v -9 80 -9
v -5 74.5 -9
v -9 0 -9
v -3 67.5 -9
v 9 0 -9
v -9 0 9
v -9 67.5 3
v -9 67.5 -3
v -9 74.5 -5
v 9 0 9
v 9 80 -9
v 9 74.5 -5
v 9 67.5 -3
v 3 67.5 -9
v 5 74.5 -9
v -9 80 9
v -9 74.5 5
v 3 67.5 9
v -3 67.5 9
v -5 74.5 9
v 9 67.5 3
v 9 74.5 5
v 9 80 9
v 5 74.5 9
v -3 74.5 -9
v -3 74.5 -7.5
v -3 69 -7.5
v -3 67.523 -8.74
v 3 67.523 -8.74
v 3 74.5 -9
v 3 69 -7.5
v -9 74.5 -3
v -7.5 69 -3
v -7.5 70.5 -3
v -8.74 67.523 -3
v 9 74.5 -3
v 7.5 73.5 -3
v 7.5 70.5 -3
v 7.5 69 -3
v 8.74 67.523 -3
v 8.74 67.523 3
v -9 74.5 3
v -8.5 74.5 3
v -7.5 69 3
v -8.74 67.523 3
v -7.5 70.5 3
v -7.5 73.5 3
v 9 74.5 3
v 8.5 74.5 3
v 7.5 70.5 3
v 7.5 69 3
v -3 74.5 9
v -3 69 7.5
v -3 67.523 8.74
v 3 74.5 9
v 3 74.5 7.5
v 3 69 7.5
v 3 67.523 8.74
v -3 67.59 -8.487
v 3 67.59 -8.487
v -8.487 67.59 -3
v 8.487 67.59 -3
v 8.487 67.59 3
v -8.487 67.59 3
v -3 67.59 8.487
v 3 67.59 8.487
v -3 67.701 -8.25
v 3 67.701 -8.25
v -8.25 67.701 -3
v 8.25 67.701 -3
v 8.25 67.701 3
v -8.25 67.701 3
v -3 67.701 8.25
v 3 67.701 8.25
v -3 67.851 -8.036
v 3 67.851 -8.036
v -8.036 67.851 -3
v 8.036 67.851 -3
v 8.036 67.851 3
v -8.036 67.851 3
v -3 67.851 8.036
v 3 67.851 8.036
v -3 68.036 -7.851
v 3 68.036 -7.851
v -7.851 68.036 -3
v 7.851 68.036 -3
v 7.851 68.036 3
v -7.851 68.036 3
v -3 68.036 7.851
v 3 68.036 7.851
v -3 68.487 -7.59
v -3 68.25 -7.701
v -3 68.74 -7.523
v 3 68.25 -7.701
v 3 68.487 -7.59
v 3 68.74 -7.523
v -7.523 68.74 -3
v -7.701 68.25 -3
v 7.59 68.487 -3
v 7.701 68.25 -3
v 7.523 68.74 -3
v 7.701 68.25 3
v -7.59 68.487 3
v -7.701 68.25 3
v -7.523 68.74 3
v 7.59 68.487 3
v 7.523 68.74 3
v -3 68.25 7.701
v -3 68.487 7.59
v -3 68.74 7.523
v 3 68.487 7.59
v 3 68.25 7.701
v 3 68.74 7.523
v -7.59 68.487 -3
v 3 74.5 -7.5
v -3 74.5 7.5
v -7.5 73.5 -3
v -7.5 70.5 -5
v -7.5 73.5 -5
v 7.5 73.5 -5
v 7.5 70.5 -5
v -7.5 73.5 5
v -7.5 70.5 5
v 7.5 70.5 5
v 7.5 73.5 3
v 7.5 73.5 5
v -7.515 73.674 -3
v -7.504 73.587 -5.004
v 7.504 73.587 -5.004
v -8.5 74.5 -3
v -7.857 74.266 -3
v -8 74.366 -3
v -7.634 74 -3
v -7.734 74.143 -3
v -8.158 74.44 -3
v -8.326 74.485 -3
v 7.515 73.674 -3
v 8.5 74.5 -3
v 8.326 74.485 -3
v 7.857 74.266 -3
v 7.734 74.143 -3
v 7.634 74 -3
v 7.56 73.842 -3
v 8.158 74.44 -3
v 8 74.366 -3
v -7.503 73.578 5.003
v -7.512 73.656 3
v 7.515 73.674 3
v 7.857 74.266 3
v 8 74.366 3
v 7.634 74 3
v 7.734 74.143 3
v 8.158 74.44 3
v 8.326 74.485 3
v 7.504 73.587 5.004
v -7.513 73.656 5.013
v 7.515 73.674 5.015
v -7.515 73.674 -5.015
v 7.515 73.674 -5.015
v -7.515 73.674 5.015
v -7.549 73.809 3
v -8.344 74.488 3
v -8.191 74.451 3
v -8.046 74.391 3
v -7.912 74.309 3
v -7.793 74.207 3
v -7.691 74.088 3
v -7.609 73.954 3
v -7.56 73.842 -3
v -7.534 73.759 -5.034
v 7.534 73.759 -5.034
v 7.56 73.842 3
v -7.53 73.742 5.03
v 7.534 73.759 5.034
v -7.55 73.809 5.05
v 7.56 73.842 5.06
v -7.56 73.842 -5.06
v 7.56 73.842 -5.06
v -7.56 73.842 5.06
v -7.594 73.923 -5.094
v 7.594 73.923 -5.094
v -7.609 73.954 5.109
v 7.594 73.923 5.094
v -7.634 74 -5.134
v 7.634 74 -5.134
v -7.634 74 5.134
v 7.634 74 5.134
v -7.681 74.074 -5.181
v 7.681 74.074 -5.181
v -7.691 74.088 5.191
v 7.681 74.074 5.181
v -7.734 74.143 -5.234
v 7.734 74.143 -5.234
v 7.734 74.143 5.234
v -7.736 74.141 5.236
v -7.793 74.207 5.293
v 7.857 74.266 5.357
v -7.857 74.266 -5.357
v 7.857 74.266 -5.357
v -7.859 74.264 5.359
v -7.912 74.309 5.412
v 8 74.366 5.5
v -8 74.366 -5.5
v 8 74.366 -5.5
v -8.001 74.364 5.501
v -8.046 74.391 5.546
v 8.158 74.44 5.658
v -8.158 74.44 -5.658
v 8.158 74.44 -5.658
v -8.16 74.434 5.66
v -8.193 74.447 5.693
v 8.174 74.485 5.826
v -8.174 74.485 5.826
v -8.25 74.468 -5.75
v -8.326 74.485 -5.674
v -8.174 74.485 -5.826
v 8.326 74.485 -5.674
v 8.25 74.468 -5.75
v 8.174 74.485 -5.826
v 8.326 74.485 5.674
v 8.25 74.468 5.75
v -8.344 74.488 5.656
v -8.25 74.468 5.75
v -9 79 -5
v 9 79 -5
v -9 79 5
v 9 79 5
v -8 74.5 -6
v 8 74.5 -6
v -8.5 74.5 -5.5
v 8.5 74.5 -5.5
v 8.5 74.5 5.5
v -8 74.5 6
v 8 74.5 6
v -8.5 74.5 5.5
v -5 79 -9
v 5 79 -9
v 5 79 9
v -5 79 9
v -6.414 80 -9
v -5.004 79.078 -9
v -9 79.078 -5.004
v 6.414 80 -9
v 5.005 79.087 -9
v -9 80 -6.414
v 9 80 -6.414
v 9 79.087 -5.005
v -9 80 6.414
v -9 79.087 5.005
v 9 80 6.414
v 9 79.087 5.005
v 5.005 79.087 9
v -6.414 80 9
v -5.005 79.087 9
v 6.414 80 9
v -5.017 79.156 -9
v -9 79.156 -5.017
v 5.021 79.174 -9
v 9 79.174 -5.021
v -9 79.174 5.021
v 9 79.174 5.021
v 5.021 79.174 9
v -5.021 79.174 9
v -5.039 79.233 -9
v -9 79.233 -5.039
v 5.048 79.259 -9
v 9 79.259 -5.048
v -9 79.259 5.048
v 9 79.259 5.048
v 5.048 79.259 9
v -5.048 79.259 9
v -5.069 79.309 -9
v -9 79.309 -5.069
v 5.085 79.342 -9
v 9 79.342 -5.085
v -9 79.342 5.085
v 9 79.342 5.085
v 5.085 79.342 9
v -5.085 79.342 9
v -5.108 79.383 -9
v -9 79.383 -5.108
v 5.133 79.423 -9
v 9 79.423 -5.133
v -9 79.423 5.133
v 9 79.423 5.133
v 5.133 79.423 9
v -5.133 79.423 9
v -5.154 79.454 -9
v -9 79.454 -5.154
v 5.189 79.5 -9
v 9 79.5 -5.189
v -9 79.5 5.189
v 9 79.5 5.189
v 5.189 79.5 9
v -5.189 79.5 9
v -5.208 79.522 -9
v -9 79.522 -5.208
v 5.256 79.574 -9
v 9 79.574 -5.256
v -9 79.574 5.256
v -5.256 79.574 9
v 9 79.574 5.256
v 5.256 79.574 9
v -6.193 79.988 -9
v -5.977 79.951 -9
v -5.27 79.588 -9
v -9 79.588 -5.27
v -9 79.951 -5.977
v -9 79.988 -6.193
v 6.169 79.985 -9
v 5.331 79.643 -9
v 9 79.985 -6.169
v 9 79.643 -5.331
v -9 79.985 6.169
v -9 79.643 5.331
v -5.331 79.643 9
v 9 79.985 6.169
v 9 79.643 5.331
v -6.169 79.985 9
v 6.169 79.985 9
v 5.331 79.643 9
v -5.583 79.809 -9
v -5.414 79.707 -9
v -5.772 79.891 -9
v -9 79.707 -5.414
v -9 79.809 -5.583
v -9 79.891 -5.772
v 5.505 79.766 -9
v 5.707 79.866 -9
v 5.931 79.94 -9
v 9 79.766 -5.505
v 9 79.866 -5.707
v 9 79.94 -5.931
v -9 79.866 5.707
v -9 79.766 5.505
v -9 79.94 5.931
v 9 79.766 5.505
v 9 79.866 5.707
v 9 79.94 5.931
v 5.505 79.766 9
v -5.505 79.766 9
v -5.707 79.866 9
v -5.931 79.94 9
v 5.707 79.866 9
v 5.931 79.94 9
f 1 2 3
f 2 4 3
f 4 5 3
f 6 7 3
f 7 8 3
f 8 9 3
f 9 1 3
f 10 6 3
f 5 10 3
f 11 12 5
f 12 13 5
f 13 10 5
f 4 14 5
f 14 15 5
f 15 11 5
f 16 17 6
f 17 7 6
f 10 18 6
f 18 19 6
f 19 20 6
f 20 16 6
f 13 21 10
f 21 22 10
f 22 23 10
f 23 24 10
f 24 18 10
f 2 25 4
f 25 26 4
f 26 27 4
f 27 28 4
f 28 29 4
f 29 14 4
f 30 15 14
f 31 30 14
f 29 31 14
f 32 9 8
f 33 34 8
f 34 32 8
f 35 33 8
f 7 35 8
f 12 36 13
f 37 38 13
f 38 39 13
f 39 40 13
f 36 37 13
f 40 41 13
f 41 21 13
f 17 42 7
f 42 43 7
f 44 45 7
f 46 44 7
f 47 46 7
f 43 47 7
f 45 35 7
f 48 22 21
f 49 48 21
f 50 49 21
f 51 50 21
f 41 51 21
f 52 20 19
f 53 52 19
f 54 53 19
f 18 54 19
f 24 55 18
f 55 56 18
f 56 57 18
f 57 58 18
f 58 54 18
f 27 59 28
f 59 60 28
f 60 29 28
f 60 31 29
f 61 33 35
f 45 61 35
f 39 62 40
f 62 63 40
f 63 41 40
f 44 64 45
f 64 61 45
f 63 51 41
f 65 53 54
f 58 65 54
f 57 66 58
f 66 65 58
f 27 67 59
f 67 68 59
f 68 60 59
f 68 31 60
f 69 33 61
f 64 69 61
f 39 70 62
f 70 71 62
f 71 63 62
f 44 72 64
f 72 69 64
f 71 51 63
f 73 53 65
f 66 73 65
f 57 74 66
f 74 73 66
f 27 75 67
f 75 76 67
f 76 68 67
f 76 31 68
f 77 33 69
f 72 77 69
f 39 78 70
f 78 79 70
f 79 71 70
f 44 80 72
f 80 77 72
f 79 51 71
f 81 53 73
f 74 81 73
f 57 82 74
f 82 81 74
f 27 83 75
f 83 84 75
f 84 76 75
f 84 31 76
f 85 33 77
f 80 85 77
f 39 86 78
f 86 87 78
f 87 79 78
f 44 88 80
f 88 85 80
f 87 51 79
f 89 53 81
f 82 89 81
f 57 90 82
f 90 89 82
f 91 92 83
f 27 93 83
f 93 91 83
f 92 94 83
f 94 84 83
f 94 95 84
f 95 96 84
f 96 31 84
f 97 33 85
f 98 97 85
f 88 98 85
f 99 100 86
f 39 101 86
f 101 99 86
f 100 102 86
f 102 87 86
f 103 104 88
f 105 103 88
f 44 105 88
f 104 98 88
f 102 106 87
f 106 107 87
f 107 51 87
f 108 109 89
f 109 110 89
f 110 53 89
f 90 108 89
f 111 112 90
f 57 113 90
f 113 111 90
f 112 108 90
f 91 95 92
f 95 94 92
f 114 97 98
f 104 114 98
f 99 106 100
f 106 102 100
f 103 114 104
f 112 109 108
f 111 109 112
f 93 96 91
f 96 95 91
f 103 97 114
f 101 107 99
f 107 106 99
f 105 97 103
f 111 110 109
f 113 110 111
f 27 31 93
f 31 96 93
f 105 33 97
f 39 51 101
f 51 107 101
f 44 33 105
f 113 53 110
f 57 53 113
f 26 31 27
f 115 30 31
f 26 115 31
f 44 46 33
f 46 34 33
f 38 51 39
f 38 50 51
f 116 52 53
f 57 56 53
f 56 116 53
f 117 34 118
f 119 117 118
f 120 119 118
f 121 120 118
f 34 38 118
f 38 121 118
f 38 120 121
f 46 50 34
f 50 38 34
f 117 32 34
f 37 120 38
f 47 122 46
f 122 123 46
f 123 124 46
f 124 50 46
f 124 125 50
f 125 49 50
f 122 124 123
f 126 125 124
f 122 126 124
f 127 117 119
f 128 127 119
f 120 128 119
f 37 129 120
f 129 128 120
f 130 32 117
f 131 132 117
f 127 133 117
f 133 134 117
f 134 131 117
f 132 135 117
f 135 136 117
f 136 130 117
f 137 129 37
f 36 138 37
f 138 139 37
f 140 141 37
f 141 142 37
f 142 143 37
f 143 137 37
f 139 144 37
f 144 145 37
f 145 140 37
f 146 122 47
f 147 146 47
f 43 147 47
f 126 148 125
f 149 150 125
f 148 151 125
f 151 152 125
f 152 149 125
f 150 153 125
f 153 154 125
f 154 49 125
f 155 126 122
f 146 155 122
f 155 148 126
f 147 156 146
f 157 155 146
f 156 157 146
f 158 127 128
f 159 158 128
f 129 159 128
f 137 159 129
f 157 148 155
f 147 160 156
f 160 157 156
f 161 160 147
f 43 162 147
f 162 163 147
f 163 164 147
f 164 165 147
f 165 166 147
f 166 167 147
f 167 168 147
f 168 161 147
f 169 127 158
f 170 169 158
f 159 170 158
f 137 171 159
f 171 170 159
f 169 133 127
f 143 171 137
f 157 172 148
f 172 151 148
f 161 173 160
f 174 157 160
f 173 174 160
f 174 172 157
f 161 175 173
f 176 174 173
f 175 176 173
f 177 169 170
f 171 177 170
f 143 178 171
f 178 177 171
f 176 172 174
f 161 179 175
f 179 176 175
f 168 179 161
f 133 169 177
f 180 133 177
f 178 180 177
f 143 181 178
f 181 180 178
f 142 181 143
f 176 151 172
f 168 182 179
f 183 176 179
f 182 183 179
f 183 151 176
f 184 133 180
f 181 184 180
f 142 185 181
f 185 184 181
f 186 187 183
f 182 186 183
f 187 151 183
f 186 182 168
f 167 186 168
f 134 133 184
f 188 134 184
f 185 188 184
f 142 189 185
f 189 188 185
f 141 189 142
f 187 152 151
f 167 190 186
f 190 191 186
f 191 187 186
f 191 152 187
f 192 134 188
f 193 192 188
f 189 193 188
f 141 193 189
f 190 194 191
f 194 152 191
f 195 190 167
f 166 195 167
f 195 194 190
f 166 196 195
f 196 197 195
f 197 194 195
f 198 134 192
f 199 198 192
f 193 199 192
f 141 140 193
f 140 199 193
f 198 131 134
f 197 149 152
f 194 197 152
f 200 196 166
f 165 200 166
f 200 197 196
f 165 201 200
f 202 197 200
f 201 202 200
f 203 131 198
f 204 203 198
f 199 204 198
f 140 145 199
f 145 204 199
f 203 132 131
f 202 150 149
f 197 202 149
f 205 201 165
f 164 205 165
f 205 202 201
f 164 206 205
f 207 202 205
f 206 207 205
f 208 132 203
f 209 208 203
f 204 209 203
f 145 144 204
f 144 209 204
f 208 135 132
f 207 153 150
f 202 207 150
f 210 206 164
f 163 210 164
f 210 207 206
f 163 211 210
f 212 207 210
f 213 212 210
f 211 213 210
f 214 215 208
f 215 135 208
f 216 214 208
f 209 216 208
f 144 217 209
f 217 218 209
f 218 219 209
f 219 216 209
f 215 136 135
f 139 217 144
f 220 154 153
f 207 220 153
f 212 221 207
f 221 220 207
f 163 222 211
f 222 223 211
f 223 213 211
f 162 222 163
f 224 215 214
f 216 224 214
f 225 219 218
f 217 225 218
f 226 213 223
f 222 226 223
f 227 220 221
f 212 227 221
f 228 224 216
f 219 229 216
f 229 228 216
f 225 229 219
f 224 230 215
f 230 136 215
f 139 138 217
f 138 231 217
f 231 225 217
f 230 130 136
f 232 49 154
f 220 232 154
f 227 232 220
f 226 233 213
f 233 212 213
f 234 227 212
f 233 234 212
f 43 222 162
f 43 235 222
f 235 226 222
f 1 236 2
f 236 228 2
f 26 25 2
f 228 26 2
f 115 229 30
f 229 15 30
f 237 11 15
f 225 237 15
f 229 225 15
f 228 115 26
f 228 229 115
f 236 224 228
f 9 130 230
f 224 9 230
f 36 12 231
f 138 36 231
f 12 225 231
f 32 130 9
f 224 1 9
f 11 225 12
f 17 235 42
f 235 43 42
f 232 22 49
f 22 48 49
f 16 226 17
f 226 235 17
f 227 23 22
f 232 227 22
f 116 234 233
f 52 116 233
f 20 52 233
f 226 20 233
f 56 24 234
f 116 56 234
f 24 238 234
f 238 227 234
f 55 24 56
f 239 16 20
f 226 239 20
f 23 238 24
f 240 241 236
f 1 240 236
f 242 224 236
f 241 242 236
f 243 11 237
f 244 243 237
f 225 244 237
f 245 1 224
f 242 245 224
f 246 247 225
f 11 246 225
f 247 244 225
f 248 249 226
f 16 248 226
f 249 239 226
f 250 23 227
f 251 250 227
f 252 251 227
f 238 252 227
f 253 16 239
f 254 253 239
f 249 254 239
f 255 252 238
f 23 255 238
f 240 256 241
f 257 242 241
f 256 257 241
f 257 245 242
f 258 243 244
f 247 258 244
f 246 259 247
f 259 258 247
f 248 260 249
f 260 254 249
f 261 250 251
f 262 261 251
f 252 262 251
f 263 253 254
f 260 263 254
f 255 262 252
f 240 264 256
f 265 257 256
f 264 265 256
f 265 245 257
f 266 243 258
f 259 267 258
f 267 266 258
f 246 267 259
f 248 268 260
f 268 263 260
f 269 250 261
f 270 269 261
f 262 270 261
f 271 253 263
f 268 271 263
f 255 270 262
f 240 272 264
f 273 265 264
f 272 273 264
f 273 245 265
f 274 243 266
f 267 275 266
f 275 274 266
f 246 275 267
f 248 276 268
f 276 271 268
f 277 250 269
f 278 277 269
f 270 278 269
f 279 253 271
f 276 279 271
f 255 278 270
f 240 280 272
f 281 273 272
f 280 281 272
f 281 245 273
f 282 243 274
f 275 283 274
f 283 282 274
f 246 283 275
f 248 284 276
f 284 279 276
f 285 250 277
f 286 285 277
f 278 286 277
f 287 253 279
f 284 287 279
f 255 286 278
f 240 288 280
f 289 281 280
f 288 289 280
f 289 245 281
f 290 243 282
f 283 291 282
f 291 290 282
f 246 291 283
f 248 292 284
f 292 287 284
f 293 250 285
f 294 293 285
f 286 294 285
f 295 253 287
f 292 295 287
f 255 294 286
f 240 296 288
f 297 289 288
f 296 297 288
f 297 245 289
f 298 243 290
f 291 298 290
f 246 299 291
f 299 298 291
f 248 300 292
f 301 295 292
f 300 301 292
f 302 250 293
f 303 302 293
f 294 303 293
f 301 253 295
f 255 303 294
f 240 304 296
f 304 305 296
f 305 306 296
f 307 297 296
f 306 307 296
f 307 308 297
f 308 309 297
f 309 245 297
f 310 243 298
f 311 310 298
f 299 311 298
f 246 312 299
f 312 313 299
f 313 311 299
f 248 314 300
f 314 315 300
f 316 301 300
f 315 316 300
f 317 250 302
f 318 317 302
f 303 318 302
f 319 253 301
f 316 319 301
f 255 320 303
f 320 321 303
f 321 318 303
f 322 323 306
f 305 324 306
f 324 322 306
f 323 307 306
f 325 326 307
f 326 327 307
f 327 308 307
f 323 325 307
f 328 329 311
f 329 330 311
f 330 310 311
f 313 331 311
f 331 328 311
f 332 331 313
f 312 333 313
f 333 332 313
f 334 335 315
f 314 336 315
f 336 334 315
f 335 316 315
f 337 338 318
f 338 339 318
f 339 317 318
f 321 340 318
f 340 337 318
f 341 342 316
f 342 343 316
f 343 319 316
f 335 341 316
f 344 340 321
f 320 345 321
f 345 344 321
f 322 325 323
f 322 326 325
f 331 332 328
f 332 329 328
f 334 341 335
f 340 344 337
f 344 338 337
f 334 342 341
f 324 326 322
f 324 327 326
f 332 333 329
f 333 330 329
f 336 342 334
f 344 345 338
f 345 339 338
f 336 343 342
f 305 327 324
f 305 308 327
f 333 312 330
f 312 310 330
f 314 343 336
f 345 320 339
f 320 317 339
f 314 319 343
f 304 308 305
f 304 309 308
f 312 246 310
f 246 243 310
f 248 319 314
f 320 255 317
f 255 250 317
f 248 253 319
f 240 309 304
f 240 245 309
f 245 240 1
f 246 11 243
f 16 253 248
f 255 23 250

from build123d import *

# Parameters (mm, degrees)
SKETCH1_W           = 18
SKETCH1_H           = 18
BOSS_EXTRUDE1_DEPTH = 80
CUT_EXTRUDE1_DEPTH  = 5.5
SKETCH3_W           = 15
SKETCH3_H           = 10
CUT_EXTRUDE2_DEPTH  = 4
FILLET1_R           = 1
SKETCH4_W           = 6
SKETCH4_H           = 1.5
SKETCH4_W_2         = 1.5
SKETCH4_H_2         = 6
CUT_EXTRUDE3_DEPTH  = 7
FILLET2_R           = 1.5


# Some blends are built 0.0001 mm under size
with BuildPart() as part:
    # Sketch1 → Boss-Extrude1 (new body)
    with BuildSketch(Plane(origin=(0, 0, 0), x_dir=(1, 0, 0), z_dir=(0, 1, 0))):
        Rectangle(SKETCH1_W, SKETCH1_H)
    extrude(amount=BOSS_EXTRUDE1_DEPTH)

    # Sketch2 → Cut-Extrude1 (cut)
    with BuildSketch(Plane(origin=(0, 80, 0), x_dir=(1, 0, 0), z_dir=(0, 1, 0))):
        Polygon((-5, 9), (5, 9), (9, 5), (9, -5), (5, -9), (-5, -9), (-9, -5), (-9, 5), align=None)
    extrude(amount=-CUT_EXTRUDE1_DEPTH, mode=Mode.SUBTRACT)

    # Sketch3 → Cut-Extrude2 (cut)
    with BuildSketch(Plane(origin=(0, 74.5, 0), x_dir=(1, 0, 0), z_dir=(0, 1, 0))):
        Rectangle(SKETCH3_W, SKETCH3_H)
    extrude(amount=-CUT_EXTRUDE2_DEPTH, mode=Mode.SUBTRACT)

    # Fillet1
    # the kernel refuses this fillet: 1 mm, written as the material it takes off along each edge
    with BuildSketch(Plane(origin=(-10.767766953, 80, -3.232233047), x_dir=(0, -1, 0), z_dir=(0.7071067811865476, 0, -0.7071067811865476))) as fillet1_piece_1_section:
        with BuildLine():
            CenterArc((FILLET1_R, FILLET1_R), FILLET1_R, 180, 90)
            Line((0, FILLET1_R), (-FILLET1_R * 0.02, FILLET1_R))
            Line((-FILLET1_R * 0.02, FILLET1_R), (-FILLET1_R * 0.02, -FILLET1_R * 0.02))
            Line((-FILLET1_R * 0.02, -FILLET1_R * 0.02), (FILLET1_R, -FILLET1_R * 0.02))
            Line((FILLET1_R, -FILLET1_R * 0.02), (FILLET1_R, 0))
        make_face()
    fillet1_piece_1 = extrude(amount=10.656854249, mode=Mode.PRIVATE)
    fillet1_piece_1 = split(fillet1_piece_1, bisect_by=Plane(origin=(-9, 79.763052859, -7.147455413), z_dir=(1, 0, 0)), keep=Keep.TOP, mode=Mode.PRIVATE)
    fillet1_piece_1 = split(fillet1_piece_1, bisect_by=Plane(origin=(-7.147455413, 79.763052859, -9), z_dir=(0, 0, 1)), keep=Keep.TOP, mode=Mode.PRIVATE)
    add(fillet1_piece_1, mode=Mode.SUBTRACT)
    with BuildSketch(Plane(origin=(-3.232233047, 80, 10.767766953), x_dir=(0, -1, 0), z_dir=(-0.7071067811865477, 0, -0.7071067811865475))) as fillet1_piece_2_section:
        with BuildLine():
            CenterArc((FILLET1_R, FILLET1_R), FILLET1_R, 180, 90)
            Line((0, FILLET1_R), (-FILLET1_R * 0.02, FILLET1_R))
            Line((-FILLET1_R * 0.02, FILLET1_R), (-FILLET1_R * 0.02, -FILLET1_R * 0.02))
            Line((-FILLET1_R * 0.02, -FILLET1_R * 0.02), (FILLET1_R, -FILLET1_R * 0.02))
            Line((FILLET1_R, -FILLET1_R * 0.02), (FILLET1_R, 0))
        make_face()
    fillet1_piece_2 = extrude(amount=10.656854249, mode=Mode.PRIVATE)
    fillet1_piece_2 = split(fillet1_piece_2, bisect_by=Plane(origin=(-7.147455413, 79.763052859, 9), z_dir=(0, 0, -1)), keep=Keep.TOP, mode=Mode.PRIVATE)
    fillet1_piece_2 = split(fillet1_piece_2, bisect_by=Plane(origin=(-9, 79.763052859, 7.147455413), z_dir=(1, 0, 0)), keep=Keep.TOP, mode=Mode.PRIVATE)
    add(fillet1_piece_2, mode=Mode.SUBTRACT)
    with BuildSketch(Plane(origin=(10.767766953, 80, 3.232233047), x_dir=(0.7071067811865475, 0, 0.7071067811865477), z_dir=(-0.7071067811865477, 0, 0.7071067811865475))) as fillet1_piece_3_section:
        with BuildLine():
            CenterArc((FILLET1_R, -FILLET1_R), FILLET1_R, 90, 90)
            Line((0, -FILLET1_R), (-FILLET1_R * 0.02, -FILLET1_R))
            Line((-FILLET1_R * 0.02, -FILLET1_R), (-FILLET1_R * 0.02, FILLET1_R * 0.02))
            Line((-FILLET1_R * 0.02, FILLET1_R * 0.02), (FILLET1_R, FILLET1_R * 0.02))
            Line((FILLET1_R, FILLET1_R * 0.02), (FILLET1_R, 0))
        make_face()
    fillet1_piece_3 = extrude(amount=10.656854249, mode=Mode.PRIVATE)
    fillet1_piece_3 = split(fillet1_piece_3, bisect_by=Plane(origin=(7.147455413, 79.763052859, 9), z_dir=(0, 0, -1)), keep=Keep.TOP, mode=Mode.PRIVATE)
    fillet1_piece_3 = split(fillet1_piece_3, bisect_by=Plane(origin=(9, 79.763052859, 7.147455413), z_dir=(-1, 0, 0)), keep=Keep.TOP, mode=Mode.PRIVATE)
    add(fillet1_piece_3, mode=Mode.SUBTRACT)
    with BuildSketch(Plane(origin=(3.232233047, 80, -10.767766953), x_dir=(0.7071067811865476, 0, -0.7071067811865476), z_dir=(0.7071067811865476, 0, 0.7071067811865476))) as fillet1_piece_4_section:
        with BuildLine():
            CenterArc((FILLET1_R, -FILLET1_R), FILLET1_R, 90, 90)
            Line((0, -FILLET1_R), (-FILLET1_R * 0.02, -FILLET1_R))
            Line((-FILLET1_R * 0.02, -FILLET1_R), (-FILLET1_R * 0.02, FILLET1_R * 0.02))
            Line((-FILLET1_R * 0.02, FILLET1_R * 0.02), (FILLET1_R, FILLET1_R * 0.02))
            Line((FILLET1_R, FILLET1_R * 0.02), (FILLET1_R, 0))
        make_face()
    fillet1_piece_4 = extrude(amount=10.656854249, mode=Mode.PRIVATE)
    fillet1_piece_4 = split(fillet1_piece_4, bisect_by=Plane(origin=(9, 79.763052859, -7.147455413), z_dir=(-1, 0, 0)), keep=Keep.TOP, mode=Mode.PRIVATE)
    fillet1_piece_4 = split(fillet1_piece_4, bisect_by=Plane(origin=(7.147455413, 79.763052859, -9), z_dir=(0, 0, 1)), keep=Keep.TOP, mode=Mode.PRIVATE)
    add(fillet1_piece_4, mode=Mode.SUBTRACT)
    with BuildSketch(Plane(origin=(7.5, 74.5, -5), x_dir=(1, 0, 0), z_dir=(0, 0, 1)), Plane(origin=(-7.5, 74.5, 5), x_dir=(-1, 0, 0), z_dir=(0, 0, -1))) as fillet1_piece_5:
        with BuildLine():
            CenterArc((FILLET1_R, -FILLET1_R), FILLET1_R, 90, 90)
            Line((0, -FILLET1_R), (-FILLET1_R * 0.02, -FILLET1_R))
            Line((-FILLET1_R * 0.02, -FILLET1_R), (-FILLET1_R * 0.02, FILLET1_R * 0.02))
            Line((-FILLET1_R * 0.02, FILLET1_R * 0.02), (FILLET1_R, FILLET1_R * 0.02))
            Line((FILLET1_R, FILLET1_R * 0.02), (FILLET1_R, 0))
        make_face()
    extrude(amount=10, mode=Mode.SUBTRACT)
    with BuildSketch(Plane(origin=(-7.5, 74.5, -5), x_dir=(0, 0, -1), z_dir=(1, 0, 0)), Plane(origin=(7.5, 74.5, 5), x_dir=(0, 0, 1), z_dir=(-1, 0, 0))) as fillet1_piece_6:
        with BuildLine():
            CenterArc((FILLET1_R, -FILLET1_R), FILLET1_R, 90, 90)
            Line((0, -FILLET1_R), (-FILLET1_R * 0.02, -FILLET1_R))
            Line((-FILLET1_R * 0.02, -FILLET1_R), (-FILLET1_R * 0.02, FILLET1_R * 0.02))
            Line((-FILLET1_R * 0.02, FILLET1_R * 0.02), (FILLET1_R, FILLET1_R * 0.02))
            Line((FILLET1_R, FILLET1_R * 0.02), (FILLET1_R, 0))
        make_face()
    extrude(amount=15, mode=Mode.SUBTRACT)
    with BuildSketch(Plane(origin=(-7.5, 74.5, -5), x_dir=(0, 0, -1), z_dir=(1, 0, 0))) as fillet1_piece_7a_section:
        with BuildLine():
            CenterArc((FILLET1_R, -FILLET1_R), FILLET1_R, 90, 90)
            Line((0, -FILLET1_R), (-FILLET1_R * 0.02, -FILLET1_R))
            Line((-FILLET1_R * 0.02, -FILLET1_R), (-FILLET1_R * 0.02, FILLET1_R * 0.02))
            Line((-FILLET1_R * 0.02, FILLET1_R * 0.02), (FILLET1_R, FILLET1_R * 0.02))
            Line((FILLET1_R, FILLET1_R * 0.02), (FILLET1_R, 0))
        make_face()
    fillet1_piece_7a = extrude(amount=17.5, mode=Mode.PRIVATE)
    fillet1_piece_7a = split(fillet1_piece_7a, bisect_by=Plane(origin=(8.48257281, 74.252046622, -5.51742719), z_dir=(-0.7071067811865476, 0, 0.7071067811865476)), keep=Keep.TOP, mode=Mode.PRIVATE)
    fillet1_piece_7a = split(fillet1_piece_7a, bisect_by=Plane(origin=(7.5, 74.252046622, -5.189902921), z_dir=(1, 0, 0)), keep=Keep.TOP, mode=Mode.PRIVATE)
    with BuildSketch(Plane(origin=(7.5, 74.5, -7.5), x_dir=(1, 0, 0), z_dir=(0, 0, 1))) as fillet1_piece_7b_section:
        with BuildLine():
            CenterArc((FILLET1_R, -FILLET1_R), FILLET1_R, 90, 90)
            Line((0, -FILLET1_R), (-FILLET1_R * 0.02, -FILLET1_R))
            Line((-FILLET1_R * 0.02, -FILLET1_R), (-FILLET1_R * 0.02, FILLET1_R * 0.02))
            Line((-FILLET1_R * 0.02, FILLET1_R * 0.02), (FILLET1_R, FILLET1_R * 0.02))
            Line((FILLET1_R, FILLET1_R * 0.02), (FILLET1_R, 0))
        make_face()
    fillet1_piece_7b = extrude(amount=12.5, mode=Mode.PRIVATE)
    fillet1_piece_7b = split(fillet1_piece_7b, bisect_by=Plane(origin=(8.01742719, 74.252046622, -5.98257281), z_dir=(-0.7071067811865476, 0, 0.7071067811865476)), keep=Keep.TOP, mode=Mode.PRIVATE)
    fillet1_piece_7b = split(fillet1_piece_7b, bisect_by=Plane(origin=(7.689902921, 74.252046622, -5), z_dir=(0, 0, -1)), keep=Keep.TOP, mode=Mode.PRIVATE)
    fillet1_piece_7 = fillet1_piece_7a & fillet1_piece_7b
    add(fillet1_piece_7, mode=Mode.SUBTRACT)
    with BuildSketch(Plane(origin=(7.5, 74.5, -5), x_dir=(1, 0, 0), z_dir=(0, 0, 1))) as fillet1_piece_8a_section:
        with BuildLine():
            CenterArc((FILLET1_R, -FILLET1_R), FILLET1_R, 90, 90)
            Line((0, -FILLET1_R), (-FILLET1_R * 0.02, -FILLET1_R))
            Line((-FILLET1_R * 0.02, -FILLET1_R), (-FILLET1_R * 0.02, FILLET1_R * 0.02))
            Line((-FILLET1_R * 0.02, FILLET1_R * 0.02), (FILLET1_R, FILLET1_R * 0.02))
            Line((FILLET1_R, FILLET1_R * 0.02), (FILLET1_R, 0))
        make_face()
    fillet1_piece_8a = extrude(amount=12.5, mode=Mode.PRIVATE)
    fillet1_piece_8a = split(fillet1_piece_8a, bisect_by=Plane(origin=(8.01742719, 74.252046622, 5.98257281), z_dir=(-0.7071067811865475, 0, -0.7071067811865477)), keep=Keep.TOP, mode=Mode.PRIVATE)
    fillet1_piece_8a = split(fillet1_piece_8a, bisect_by=Plane(origin=(7.689902921, 74.252046622, 5), z_dir=(0, 0, 1)), keep=Keep.TOP, mode=Mode.PRIVATE)
    with BuildSketch(Plane(origin=(10, 74.5, 5), x_dir=(0, 0, 1), z_dir=(-1, 0, 0))) as fillet1_piece_8b_section:
        with BuildLine():
            CenterArc((FILLET1_R, -FILLET1_R), FILLET1_R, 90, 90)
            Line((0, -FILLET1_R), (-FILLET1_R * 0.02, -FILLET1_R))
            Line((-FILLET1_R * 0.02, -FILLET1_R), (-FILLET1_R * 0.02, FILLET1_R * 0.02))
            Line((-FILLET1_R * 0.02, FILLET1_R * 0.02), (FILLET1_R, FILLET1_R * 0.02))
            Line((FILLET1_R, FILLET1_R * 0.02), (FILLET1_R, 0))
        make_face()
    fillet1_piece_8b = extrude(amount=17.5, mode=Mode.PRIVATE)
    fillet1_piece_8b = split(fillet1_piece_8b, bisect_by=Plane(origin=(8.48257281, 74.252046622, 5.51742719), z_dir=(-0.7071067811865475, 0, -0.7071067811865477)), keep=Keep.TOP, mode=Mode.PRIVATE)
    fillet1_piece_8b = split(fillet1_piece_8b, bisect_by=Plane(origin=(7.5, 74.252046622, 5.189902921), z_dir=(1, 0, 0)), keep=Keep.TOP, mode=Mode.PRIVATE)
    fillet1_piece_8 = fillet1_piece_8a & fillet1_piece_8b
    add(fillet1_piece_8, mode=Mode.SUBTRACT)
    with BuildSketch(Plane(origin=(-10, 74.5, -5), x_dir=(0, 0, -1), z_dir=(1, 0, 0))) as fillet1_piece_9a_section:
        with BuildLine():
            CenterArc((FILLET1_R, -FILLET1_R), FILLET1_R, 90, 90)
            Line((0, -FILLET1_R), (-FILLET1_R * 0.02, -FILLET1_R))
            Line((-FILLET1_R * 0.02, -FILLET1_R), (-FILLET1_R * 0.02, FILLET1_R * 0.02))
            Line((-FILLET1_R * 0.02, FILLET1_R * 0.02), (FILLET1_R, FILLET1_R * 0.02))
            Line((FILLET1_R, FILLET1_R * 0.02), (FILLET1_R, 0))
        make_face()
    fillet1_piece_9a = extrude(amount=17.5, mode=Mode.PRIVATE)
    fillet1_piece_9a = split(fillet1_piece_9a, bisect_by=Plane(origin=(-8.48257281, 74.252046622, -5.51742719), z_dir=(0.7071067811865476, 0, 0.7071067811865476)), keep=Keep.TOP, mode=Mode.PRIVATE)
    fillet1_piece_9a = split(fillet1_piece_9a, bisect_by=Plane(origin=(-7.5, 74.252046622, -5.189902921), z_dir=(-1, 0, 0)), keep=Keep.TOP, mode=Mode.PRIVATE)
    with BuildSketch(Plane(origin=(-7.5, 74.5, 5), x_dir=(-1, 0, 0), z_dir=(0, 0, -1))) as fillet1_piece_9b_section:
        with BuildLine():
            CenterArc((FILLET1_R, -FILLET1_R), FILLET1_R, 90, 90)
            Line((0, -FILLET1_R), (-FILLET1_R * 0.02, -FILLET1_R))
            Line((-FILLET1_R * 0.02, -FILLET1_R), (-FILLET1_R * 0.02, FILLET1_R * 0.02))
            Line((-FILLET1_R * 0.02, FILLET1_R * 0.02), (FILLET1_R, FILLET1_R * 0.02))
            Line((FILLET1_R, FILLET1_R * 0.02), (FILLET1_R, 0))
        make_face()
    fillet1_piece_9b = extrude(amount=12.5, mode=Mode.PRIVATE)
    fillet1_piece_9b = split(fillet1_piece_9b, bisect_by=Plane(origin=(-8.01742719, 74.252046622, -5.98257281), z_dir=(0.7071067811865476, 0, 0.7071067811865476)), keep=Keep.TOP, mode=Mode.PRIVATE)
    fillet1_piece_9b = split(fillet1_piece_9b, bisect_by=Plane(origin=(-7.689902921, 74.252046622, -5), z_dir=(0, 0, -1)), keep=Keep.TOP, mode=Mode.PRIVATE)
    fillet1_piece_9 = fillet1_piece_9a & fillet1_piece_9b
    add(fillet1_piece_9, mode=Mode.SUBTRACT)
    with BuildSketch(Plane(origin=(7.5, 74.5, 5), x_dir=(0, 0, 1), z_dir=(-1, 0, 0))) as fillet1_piece_10a_section:
        with BuildLine():
            CenterArc((FILLET1_R, -FILLET1_R), FILLET1_R, 90, 90)
            Line((0, -FILLET1_R), (-FILLET1_R * 0.02, -FILLET1_R))
            Line((-FILLET1_R * 0.02, -FILLET1_R), (-FILLET1_R * 0.02, FILLET1_R * 0.02))
            Line((-FILLET1_R * 0.02, FILLET1_R * 0.02), (FILLET1_R, FILLET1_R * 0.02))
            Line((FILLET1_R, FILLET1_R * 0.02), (FILLET1_R, 0))
        make_face()
    fillet1_piece_10a = extrude(amount=17.5, mode=Mode.PRIVATE)
    fillet1_piece_10a = split(fillet1_piece_10a, bisect_by=Plane(origin=(-8.48257281, 74.252046622, 5.51742719), z_dir=(0.7071067811865475, 0, -0.7071067811865477)), keep=Keep.TOP, mode=Mode.PRIVATE)
    fillet1_piece_10a = split(fillet1_piece_10a, bisect_by=Plane(origin=(-7.5, 74.252046622, 5.189902921), z_dir=(-1, 0, 0)), keep=Keep.TOP, mode=Mode.PRIVATE)
    with BuildSketch(Plane(origin=(-7.5, 74.5, 7.5), x_dir=(-1, 0, 0), z_dir=(0, 0, -1))) as fillet1_piece_10b_section:
        with BuildLine():
            CenterArc((FILLET1_R, -FILLET1_R), FILLET1_R, 90, 90)
            Line((0, -FILLET1_R), (-FILLET1_R * 0.02, -FILLET1_R))
            Line((-FILLET1_R * 0.02, -FILLET1_R), (-FILLET1_R * 0.02, FILLET1_R * 0.02))
            Line((-FILLET1_R * 0.02, FILLET1_R * 0.02), (FILLET1_R, FILLET1_R * 0.02))
            Line((FILLET1_R, FILLET1_R * 0.02), (FILLET1_R, 0))
        make_face()
    fillet1_piece_10b = extrude(amount=12.5, mode=Mode.PRIVATE)
    fillet1_piece_10b = split(fillet1_piece_10b, bisect_by=Plane(origin=(-8.01742719, 74.252046622, 5.98257281), z_dir=(0.7071067811865475, 0, -0.7071067811865477)), keep=Keep.TOP, mode=Mode.PRIVATE)
    fillet1_piece_10b = split(fillet1_piece_10b, bisect_by=Plane(origin=(-7.689902921, 74.252046622, 5), z_dir=(0, 0, 1)), keep=Keep.TOP, mode=Mode.PRIVATE)
    fillet1_piece_10 = fillet1_piece_10a & fillet1_piece_10b
    add(fillet1_piece_10, mode=Mode.SUBTRACT)

    # Sketch4 → Cut-Extrude3 (cut)
    with BuildSketch(Plane(origin=(0, 74.5, 0), x_dir=(1, 0, 0), z_dir=(0, 1, 0))):
        with Locations((0, 8.25)):
            Rectangle(SKETCH4_W, SKETCH4_H)
        with Locations((8.25, 0)):
            Rectangle(SKETCH4_W_2, SKETCH4_H_2)
        with Locations((0, -8.25)):
            Rectangle(SKETCH4_W, SKETCH4_H)
        with Locations((-8.25, 0)):
            Rectangle(SKETCH4_W_2, SKETCH4_H_2)
    extrude(amount=-CUT_EXTRUDE3_DEPTH, mode=Mode.SUBTRACT)

    # Fillet2
    fillet2_edges = [part.edges().sort_by_distance(p)[0] for p in [
        (0, 67.5, -7.5),
        (-7.5, 67.5, 0),
        (0, 67.5, 7.5),
        (7.5, 67.5, 0),
    ]]
    fillet(fillet2_edges, radius=FILLET2_R - 0.0001)  # a hair under: the kernel refuses the full size


solid = part.part
